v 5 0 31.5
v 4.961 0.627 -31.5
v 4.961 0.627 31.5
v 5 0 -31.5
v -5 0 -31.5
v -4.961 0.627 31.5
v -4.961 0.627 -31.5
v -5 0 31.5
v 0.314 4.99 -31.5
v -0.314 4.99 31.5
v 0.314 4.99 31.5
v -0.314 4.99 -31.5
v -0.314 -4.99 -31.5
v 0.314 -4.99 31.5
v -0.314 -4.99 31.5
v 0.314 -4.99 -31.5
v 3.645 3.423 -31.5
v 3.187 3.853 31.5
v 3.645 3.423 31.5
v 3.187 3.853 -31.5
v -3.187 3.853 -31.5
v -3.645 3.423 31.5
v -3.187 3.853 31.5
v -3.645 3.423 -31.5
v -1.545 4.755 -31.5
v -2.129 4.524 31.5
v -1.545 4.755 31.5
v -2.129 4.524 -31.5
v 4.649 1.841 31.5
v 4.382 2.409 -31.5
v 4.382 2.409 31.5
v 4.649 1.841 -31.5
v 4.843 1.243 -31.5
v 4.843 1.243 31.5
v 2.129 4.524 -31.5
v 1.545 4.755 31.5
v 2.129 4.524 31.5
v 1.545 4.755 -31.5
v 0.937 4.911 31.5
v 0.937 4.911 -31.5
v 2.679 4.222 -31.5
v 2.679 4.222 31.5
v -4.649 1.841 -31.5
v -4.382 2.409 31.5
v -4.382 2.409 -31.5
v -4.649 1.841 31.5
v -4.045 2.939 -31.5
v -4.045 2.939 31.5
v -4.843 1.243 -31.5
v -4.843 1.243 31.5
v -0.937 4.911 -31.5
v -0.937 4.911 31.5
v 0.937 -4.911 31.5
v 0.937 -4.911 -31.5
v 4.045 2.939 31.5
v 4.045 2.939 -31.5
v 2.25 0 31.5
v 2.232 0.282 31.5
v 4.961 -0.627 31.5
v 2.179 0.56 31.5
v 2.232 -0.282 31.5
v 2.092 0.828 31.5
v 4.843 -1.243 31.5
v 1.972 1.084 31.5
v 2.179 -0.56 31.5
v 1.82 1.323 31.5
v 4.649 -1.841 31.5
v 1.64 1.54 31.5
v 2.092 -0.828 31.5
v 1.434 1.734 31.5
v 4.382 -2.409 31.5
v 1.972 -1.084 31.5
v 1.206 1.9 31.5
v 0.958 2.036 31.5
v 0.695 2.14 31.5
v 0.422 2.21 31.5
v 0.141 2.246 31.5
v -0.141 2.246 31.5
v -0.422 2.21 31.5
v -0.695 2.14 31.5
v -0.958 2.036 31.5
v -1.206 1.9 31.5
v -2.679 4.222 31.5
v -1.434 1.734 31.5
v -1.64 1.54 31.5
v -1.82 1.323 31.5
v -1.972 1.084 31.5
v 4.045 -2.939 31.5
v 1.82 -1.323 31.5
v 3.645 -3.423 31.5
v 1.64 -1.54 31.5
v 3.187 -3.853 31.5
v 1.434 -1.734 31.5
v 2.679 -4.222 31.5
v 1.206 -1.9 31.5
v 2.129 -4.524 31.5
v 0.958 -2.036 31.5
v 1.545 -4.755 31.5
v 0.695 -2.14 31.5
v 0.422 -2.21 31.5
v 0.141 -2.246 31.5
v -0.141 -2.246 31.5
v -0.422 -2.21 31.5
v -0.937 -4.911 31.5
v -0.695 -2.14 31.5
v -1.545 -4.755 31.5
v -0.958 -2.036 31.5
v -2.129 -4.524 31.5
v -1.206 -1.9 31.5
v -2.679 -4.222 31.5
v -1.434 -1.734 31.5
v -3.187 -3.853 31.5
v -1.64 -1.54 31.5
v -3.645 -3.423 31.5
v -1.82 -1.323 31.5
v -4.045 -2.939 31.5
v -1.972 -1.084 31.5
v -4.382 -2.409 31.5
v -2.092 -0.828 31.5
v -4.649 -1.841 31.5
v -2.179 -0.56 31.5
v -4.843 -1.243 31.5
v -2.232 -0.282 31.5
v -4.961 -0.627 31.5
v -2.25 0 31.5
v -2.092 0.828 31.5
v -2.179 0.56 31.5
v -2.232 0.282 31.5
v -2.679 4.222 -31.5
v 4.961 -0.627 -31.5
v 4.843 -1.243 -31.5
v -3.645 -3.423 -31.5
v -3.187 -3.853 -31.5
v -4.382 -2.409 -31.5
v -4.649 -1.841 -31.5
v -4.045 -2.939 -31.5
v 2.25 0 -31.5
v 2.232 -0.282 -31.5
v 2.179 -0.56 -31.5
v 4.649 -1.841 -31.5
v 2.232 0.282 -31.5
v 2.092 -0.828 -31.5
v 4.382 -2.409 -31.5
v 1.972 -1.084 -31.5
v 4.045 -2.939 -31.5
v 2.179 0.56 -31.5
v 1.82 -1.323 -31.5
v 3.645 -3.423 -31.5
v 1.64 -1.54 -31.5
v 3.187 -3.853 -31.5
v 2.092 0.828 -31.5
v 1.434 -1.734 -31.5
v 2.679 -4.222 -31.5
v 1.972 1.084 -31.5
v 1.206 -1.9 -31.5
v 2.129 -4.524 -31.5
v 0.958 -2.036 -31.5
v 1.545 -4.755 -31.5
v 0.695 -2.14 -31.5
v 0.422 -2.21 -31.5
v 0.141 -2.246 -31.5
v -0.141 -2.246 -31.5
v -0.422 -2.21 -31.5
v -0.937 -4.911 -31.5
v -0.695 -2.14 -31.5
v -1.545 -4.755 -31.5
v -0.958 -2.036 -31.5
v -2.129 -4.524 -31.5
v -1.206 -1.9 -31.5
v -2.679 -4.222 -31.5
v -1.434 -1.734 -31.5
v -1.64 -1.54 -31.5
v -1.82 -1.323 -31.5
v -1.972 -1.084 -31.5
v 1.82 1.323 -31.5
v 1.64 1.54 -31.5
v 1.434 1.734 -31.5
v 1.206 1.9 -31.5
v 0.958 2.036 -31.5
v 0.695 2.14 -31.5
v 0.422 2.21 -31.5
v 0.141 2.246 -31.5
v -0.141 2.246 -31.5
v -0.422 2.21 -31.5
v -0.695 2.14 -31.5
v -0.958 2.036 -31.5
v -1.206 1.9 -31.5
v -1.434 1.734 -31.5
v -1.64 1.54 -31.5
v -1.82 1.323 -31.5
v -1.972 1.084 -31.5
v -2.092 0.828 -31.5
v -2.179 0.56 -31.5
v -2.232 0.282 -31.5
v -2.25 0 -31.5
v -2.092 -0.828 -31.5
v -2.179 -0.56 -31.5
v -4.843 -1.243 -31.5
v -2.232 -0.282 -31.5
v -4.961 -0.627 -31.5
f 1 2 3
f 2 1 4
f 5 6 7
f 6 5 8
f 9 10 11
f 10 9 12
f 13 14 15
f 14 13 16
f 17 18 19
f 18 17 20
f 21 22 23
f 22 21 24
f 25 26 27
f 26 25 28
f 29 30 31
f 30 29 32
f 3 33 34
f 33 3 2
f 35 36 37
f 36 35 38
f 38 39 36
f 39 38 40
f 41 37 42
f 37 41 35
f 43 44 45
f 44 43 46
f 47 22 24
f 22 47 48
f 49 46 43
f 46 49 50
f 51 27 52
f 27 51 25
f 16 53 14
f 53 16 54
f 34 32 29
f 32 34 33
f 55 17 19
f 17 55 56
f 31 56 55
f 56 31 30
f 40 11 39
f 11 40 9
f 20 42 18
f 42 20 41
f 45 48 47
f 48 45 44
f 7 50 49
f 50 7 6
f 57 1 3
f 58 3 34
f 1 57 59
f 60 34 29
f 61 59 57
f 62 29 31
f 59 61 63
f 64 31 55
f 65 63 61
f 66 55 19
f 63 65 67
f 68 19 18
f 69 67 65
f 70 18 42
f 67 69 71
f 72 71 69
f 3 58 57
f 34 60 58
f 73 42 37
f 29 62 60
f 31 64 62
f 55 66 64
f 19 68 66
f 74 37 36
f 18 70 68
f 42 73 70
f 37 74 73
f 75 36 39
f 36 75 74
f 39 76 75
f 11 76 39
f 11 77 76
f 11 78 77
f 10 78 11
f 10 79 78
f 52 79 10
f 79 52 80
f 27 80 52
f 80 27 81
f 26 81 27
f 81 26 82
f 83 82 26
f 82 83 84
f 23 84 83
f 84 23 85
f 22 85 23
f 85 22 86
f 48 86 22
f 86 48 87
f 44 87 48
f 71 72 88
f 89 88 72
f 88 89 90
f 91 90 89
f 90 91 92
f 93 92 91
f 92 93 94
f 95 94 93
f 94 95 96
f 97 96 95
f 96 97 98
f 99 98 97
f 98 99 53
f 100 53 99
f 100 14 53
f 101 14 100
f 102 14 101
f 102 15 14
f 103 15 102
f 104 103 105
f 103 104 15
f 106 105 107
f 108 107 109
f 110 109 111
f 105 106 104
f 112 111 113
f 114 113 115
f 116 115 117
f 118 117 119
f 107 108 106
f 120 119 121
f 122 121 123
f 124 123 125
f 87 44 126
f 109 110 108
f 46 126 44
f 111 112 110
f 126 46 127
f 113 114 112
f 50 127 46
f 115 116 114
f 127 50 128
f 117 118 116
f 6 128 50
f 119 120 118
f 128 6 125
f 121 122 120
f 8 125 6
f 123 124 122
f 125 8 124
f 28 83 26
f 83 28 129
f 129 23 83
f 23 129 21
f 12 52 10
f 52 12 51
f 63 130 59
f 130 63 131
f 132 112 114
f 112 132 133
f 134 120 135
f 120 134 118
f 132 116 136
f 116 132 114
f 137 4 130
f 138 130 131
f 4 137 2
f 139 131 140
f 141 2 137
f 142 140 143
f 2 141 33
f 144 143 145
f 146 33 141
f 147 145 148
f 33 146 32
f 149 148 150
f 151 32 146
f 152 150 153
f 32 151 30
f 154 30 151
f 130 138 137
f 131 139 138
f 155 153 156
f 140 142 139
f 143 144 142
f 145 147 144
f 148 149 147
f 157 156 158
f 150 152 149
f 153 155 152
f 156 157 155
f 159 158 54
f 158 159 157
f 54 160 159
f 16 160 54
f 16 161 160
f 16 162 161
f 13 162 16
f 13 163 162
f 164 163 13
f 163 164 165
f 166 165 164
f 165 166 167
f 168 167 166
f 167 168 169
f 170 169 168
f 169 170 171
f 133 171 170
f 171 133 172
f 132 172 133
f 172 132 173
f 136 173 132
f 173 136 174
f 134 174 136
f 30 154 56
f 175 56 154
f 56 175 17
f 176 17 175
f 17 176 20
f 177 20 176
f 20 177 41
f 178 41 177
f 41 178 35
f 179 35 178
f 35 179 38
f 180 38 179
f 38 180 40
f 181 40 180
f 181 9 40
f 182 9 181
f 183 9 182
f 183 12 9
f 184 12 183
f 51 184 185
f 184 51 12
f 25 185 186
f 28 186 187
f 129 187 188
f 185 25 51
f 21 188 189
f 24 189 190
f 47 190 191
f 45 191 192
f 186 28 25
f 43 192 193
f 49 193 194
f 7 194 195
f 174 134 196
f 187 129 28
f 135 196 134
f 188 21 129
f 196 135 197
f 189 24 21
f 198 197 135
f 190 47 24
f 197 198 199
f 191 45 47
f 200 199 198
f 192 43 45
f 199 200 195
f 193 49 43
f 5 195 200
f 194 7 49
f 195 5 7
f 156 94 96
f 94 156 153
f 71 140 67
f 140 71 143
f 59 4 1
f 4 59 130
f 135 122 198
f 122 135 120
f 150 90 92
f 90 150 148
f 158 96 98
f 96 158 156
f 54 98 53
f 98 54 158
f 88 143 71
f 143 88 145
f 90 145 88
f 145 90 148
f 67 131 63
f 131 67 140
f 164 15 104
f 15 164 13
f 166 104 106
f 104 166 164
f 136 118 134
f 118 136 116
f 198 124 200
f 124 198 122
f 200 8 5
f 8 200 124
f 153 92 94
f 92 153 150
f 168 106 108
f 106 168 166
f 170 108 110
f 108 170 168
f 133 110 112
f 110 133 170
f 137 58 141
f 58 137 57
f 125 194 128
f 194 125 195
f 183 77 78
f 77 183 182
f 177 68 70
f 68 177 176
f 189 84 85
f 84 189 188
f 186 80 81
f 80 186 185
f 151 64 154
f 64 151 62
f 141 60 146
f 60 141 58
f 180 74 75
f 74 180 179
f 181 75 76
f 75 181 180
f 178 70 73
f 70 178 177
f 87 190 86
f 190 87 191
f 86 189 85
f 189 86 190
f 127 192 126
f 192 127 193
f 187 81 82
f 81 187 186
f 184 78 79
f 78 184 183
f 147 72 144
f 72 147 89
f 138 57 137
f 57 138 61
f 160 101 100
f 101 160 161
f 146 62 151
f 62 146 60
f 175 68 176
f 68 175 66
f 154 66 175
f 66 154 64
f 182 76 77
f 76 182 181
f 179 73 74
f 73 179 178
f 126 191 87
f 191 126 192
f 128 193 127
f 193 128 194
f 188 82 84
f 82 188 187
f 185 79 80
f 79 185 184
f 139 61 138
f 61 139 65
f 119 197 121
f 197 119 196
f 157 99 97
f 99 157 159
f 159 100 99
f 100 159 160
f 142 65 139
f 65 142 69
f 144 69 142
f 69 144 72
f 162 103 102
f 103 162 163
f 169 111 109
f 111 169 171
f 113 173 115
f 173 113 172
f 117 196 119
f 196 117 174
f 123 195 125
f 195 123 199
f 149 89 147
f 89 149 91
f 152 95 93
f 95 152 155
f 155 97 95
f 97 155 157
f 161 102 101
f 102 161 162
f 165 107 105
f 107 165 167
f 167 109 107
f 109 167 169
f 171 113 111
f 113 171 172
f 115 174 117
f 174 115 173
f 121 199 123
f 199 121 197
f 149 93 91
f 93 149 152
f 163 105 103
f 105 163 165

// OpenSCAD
$fn = 50;


difference() {
	union() {
		translate(v = [0, 0, -31.5000000000]) {
			cylinder(h = 63, r = 5.0000000000);
		}
	}
	union() {
		translate(v = [0, 0, -100.0000000000]) {
			cylinder(h = 200, r = 2.2500000000);
		}
	}
}
